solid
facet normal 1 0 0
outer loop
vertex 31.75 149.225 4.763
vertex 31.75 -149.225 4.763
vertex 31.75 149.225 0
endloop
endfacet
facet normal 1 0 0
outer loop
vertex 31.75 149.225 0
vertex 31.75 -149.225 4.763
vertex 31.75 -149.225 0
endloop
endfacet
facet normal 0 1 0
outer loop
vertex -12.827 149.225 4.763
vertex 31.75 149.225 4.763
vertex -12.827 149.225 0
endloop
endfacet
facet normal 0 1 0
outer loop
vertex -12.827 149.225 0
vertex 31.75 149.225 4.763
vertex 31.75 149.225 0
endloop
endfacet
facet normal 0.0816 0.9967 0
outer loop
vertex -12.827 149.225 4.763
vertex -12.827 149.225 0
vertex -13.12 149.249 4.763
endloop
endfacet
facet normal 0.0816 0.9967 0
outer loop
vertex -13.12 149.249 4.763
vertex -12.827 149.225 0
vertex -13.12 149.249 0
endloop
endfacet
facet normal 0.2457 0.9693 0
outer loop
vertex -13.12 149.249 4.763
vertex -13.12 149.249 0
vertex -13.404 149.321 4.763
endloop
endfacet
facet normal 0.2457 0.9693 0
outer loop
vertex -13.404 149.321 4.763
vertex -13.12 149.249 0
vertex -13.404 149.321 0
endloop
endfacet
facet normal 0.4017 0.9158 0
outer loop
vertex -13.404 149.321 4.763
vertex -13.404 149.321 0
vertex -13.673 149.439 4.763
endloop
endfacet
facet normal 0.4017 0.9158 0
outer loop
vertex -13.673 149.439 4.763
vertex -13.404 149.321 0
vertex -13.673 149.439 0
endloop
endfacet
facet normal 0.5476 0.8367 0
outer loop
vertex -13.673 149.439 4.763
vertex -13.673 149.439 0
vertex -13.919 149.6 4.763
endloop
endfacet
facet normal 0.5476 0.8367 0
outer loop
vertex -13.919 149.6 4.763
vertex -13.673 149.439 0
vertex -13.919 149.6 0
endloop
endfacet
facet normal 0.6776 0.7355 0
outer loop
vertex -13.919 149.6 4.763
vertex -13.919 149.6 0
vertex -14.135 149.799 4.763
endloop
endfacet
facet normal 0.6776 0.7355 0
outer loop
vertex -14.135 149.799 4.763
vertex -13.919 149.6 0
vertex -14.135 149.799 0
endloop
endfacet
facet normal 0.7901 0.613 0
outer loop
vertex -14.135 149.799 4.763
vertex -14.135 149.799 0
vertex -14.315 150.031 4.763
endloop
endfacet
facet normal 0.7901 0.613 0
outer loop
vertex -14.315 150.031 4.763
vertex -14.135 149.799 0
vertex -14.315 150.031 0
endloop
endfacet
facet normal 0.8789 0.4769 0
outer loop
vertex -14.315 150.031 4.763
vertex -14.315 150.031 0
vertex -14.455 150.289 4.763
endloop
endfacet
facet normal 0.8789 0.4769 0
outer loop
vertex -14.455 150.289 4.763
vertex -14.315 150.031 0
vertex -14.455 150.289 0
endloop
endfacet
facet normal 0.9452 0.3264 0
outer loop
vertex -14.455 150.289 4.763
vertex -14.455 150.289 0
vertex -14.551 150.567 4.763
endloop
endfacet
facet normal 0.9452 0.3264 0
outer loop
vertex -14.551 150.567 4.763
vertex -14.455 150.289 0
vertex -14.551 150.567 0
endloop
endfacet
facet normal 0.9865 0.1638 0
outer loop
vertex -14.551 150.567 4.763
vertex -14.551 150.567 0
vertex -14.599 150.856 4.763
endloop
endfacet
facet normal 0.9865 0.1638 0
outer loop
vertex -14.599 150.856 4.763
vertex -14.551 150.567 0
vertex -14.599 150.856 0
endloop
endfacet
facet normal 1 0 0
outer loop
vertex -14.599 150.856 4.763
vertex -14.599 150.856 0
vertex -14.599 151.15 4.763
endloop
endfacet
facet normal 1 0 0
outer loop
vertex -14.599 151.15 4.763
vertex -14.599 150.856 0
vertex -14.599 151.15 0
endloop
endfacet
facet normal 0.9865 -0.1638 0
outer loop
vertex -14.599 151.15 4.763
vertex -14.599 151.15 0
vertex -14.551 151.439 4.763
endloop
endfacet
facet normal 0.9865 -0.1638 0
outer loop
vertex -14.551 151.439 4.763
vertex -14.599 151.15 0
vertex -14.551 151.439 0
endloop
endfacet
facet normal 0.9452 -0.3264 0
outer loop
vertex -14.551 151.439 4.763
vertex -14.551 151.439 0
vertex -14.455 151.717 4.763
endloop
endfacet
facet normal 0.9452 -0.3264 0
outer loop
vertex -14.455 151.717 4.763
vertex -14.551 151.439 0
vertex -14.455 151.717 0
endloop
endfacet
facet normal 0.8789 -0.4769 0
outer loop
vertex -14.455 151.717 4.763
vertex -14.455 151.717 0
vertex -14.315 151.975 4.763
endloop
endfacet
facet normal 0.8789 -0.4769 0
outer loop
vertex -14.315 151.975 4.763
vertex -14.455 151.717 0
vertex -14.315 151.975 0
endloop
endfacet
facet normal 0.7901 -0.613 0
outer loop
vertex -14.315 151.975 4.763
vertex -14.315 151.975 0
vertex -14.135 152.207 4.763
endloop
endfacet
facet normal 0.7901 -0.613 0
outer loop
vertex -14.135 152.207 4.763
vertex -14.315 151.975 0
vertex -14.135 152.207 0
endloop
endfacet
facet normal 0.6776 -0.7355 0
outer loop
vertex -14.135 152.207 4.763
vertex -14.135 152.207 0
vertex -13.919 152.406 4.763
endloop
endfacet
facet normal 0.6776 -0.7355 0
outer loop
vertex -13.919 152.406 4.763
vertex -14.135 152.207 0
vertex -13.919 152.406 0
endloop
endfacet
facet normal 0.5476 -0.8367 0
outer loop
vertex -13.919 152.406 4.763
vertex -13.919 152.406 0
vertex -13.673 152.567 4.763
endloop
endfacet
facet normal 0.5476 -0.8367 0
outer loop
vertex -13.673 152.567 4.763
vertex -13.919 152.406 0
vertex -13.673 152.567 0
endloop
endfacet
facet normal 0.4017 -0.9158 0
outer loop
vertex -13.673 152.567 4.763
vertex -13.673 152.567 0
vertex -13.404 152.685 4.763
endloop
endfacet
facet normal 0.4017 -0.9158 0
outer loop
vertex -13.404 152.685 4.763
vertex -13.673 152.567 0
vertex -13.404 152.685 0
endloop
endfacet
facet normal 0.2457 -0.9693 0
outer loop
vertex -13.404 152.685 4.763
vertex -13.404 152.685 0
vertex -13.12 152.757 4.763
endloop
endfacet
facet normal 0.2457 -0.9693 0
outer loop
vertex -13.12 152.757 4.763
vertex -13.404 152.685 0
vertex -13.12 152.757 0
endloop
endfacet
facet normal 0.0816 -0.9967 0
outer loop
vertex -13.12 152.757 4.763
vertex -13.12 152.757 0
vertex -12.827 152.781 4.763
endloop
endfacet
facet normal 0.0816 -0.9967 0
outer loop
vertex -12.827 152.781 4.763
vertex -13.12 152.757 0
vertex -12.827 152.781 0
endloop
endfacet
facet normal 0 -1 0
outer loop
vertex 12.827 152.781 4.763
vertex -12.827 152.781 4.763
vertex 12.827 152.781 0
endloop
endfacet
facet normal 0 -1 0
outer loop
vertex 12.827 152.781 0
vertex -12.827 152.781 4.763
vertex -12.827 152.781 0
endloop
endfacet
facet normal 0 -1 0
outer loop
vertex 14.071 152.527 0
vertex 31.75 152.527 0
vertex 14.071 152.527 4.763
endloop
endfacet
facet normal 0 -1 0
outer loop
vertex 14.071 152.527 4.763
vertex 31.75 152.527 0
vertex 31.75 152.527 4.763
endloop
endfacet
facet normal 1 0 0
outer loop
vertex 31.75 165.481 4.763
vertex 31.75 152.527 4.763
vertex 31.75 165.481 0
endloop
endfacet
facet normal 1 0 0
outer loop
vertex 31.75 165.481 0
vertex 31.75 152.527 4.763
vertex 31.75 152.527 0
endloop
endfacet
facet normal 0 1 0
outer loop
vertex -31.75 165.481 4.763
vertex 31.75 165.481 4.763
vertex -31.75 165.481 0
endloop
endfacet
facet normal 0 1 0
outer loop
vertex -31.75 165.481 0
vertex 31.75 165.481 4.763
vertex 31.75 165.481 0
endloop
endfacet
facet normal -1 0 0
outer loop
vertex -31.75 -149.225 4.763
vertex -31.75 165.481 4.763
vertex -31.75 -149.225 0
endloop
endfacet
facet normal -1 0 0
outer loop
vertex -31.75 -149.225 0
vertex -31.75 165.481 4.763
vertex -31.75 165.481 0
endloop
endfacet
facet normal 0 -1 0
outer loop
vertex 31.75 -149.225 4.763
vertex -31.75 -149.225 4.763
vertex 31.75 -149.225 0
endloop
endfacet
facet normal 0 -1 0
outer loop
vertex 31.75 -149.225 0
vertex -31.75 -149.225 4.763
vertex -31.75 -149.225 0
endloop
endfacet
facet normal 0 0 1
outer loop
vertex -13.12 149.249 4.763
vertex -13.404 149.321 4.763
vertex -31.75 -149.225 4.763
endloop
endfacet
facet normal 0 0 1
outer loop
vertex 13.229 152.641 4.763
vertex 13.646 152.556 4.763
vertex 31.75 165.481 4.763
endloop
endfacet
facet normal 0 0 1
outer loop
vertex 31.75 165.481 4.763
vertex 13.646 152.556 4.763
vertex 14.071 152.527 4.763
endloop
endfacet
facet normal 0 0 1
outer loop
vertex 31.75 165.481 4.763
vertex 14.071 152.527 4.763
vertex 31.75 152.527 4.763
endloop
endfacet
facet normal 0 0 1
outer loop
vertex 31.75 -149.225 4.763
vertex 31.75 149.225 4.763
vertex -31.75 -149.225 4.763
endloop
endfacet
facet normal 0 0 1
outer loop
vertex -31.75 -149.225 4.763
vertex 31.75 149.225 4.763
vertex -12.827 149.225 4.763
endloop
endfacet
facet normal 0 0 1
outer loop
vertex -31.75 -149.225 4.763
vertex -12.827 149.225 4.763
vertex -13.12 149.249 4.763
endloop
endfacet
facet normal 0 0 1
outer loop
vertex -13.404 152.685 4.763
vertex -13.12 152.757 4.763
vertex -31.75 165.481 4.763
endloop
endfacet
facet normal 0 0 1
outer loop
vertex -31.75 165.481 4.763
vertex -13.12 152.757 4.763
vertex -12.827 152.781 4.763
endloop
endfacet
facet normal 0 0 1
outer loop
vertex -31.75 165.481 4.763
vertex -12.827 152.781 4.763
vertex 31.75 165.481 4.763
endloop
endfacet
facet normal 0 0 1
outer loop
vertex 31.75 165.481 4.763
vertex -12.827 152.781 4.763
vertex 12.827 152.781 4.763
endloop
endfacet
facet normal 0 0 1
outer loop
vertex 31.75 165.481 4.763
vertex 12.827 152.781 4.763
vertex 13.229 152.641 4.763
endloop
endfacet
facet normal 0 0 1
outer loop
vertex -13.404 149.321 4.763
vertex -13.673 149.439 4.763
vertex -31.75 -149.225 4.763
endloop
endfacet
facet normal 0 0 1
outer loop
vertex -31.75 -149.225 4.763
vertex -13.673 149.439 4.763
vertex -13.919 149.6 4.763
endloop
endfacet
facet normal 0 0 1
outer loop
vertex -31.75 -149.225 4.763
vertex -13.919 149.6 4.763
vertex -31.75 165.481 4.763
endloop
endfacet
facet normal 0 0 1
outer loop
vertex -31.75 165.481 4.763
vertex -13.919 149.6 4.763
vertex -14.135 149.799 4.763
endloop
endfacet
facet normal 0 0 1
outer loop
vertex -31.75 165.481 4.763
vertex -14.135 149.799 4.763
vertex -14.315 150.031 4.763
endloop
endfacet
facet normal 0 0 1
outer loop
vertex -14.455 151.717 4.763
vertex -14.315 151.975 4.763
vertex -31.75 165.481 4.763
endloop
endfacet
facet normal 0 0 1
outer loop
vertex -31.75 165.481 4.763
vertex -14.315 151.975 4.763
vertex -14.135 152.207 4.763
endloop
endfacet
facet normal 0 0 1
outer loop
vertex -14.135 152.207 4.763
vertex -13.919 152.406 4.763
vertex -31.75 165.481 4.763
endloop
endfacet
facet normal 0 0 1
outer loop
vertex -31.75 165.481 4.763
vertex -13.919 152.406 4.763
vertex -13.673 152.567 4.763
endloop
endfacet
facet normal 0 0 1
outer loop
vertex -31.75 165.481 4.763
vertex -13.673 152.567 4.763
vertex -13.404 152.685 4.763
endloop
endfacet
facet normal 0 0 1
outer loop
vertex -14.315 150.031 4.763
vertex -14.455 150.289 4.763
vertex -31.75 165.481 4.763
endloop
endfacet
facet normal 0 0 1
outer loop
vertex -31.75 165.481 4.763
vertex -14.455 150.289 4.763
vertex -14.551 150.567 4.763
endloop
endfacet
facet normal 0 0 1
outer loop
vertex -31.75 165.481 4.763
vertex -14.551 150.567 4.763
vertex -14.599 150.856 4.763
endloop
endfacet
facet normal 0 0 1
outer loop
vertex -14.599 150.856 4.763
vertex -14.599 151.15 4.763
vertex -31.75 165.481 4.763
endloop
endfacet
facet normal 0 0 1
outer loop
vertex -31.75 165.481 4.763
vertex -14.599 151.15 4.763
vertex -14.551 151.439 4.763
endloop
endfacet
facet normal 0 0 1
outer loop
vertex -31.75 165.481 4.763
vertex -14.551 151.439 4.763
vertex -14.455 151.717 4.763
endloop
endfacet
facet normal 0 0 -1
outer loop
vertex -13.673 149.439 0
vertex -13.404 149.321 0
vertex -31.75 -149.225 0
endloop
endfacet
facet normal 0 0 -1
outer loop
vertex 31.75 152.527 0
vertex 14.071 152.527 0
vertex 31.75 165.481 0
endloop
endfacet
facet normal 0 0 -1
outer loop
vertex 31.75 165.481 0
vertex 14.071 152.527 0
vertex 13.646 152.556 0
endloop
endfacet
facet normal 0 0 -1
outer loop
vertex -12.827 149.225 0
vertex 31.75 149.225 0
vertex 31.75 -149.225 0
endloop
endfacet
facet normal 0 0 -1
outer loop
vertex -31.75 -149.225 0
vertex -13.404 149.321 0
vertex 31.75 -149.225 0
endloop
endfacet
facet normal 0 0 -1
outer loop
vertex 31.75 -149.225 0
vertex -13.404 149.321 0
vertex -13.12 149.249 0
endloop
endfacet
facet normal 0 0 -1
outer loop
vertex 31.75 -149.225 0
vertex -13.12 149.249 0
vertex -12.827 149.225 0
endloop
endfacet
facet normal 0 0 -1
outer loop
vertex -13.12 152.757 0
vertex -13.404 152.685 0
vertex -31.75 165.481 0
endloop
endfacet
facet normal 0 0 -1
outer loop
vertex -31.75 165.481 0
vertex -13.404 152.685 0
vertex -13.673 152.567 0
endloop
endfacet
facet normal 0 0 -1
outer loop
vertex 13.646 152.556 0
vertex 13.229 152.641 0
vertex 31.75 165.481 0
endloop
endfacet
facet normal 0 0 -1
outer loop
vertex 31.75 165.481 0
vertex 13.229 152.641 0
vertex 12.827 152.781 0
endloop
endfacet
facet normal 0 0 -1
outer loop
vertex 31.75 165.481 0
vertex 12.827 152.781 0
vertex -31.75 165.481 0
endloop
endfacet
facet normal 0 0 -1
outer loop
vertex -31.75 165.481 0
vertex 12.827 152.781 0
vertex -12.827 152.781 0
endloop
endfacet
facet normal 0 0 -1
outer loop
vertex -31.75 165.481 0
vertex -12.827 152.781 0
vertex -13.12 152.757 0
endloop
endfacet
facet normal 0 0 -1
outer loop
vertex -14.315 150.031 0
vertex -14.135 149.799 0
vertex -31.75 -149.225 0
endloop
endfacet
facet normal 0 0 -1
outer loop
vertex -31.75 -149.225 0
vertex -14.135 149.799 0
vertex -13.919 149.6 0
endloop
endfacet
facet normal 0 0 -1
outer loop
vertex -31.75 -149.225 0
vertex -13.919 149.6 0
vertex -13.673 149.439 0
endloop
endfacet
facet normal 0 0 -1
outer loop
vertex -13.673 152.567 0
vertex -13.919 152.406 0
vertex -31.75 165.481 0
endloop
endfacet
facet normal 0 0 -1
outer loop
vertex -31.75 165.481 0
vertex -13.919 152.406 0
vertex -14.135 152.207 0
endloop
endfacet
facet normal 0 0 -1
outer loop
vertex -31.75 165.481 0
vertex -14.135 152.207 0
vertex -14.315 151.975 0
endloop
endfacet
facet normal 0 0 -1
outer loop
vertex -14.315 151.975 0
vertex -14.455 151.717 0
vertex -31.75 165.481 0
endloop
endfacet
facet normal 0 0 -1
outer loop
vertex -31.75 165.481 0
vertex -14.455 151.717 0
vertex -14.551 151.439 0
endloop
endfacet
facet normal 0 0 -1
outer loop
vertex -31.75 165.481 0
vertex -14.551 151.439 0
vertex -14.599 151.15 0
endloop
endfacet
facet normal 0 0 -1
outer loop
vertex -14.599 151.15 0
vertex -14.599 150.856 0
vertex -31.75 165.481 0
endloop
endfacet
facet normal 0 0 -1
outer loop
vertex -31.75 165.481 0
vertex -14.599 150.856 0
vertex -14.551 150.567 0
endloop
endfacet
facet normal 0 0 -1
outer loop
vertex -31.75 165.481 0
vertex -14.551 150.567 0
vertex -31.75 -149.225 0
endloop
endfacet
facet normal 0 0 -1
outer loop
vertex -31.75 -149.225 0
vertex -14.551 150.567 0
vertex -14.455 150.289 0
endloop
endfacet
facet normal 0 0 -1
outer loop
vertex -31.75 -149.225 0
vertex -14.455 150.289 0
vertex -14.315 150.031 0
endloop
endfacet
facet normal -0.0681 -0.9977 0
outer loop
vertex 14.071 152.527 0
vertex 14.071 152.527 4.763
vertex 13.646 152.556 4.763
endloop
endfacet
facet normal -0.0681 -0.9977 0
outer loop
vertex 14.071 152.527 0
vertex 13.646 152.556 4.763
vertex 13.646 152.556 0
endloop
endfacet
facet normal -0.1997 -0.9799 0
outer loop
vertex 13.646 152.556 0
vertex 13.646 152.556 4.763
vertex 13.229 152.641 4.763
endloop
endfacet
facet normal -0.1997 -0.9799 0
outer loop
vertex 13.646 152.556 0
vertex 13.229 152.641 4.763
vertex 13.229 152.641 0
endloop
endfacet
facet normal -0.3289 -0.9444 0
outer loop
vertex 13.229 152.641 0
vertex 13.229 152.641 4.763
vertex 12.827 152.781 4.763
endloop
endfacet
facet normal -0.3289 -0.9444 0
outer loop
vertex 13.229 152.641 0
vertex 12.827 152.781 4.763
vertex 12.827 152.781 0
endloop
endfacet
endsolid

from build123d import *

# Parameters (mm, degrees)
BOSS_EXTRUDE1_DEPTH = 4.7625
FILLET1_R           = 3.175


with BuildPart() as part:
    # Sketch1 → Boss-Extrude1 (new body)
    with BuildSketch(Plane.XY):
        with BuildLine():
            Line((-31.75, 165.481), (-31.75, 149.225))
            Line((-31.75, 149.225), (-12.827, 149.225))
            ThreePointArc((-12.827, 149.225), (-14.605, 151.003), (-12.827, 152.781))
            Line((-12.827, 152.781), (12.827, 152.781))
            Line((12.827, 152.781), (12.827, 152.527))
            Line((12.827, 152.527), (31.75, 152.527))
            Line((31.75, 152.527), (31.75, 165.481))
            Line((31.75, 165.481), (-31.75, 165.481))
        make_face()
        Polygon((-12.827, 149.225), (-31.75, 149.225), (-31.75, -149.225), (31.75, -149.225), (31.75, 149.225), align=None)
    extrude(amount=BOSS_EXTRUDE1_DEPTH)

    # Fillet1
    # the kernel refuses this fillet: 3.175 mm, written as the material it takes off along each edge
    with BuildSketch(Plane(origin=(12.827, 152.527, -3.110851973), x_dir=(0, 1, 0), z_dir=(0, 0, 1))) as fillet1_piece_1:
        with BuildLine():
            CenterArc((3.175, -1.244340789), FILLET1_R, 156.926081934, 23.073918066)
            Line((0, -1.244340789), (-0.0635, -1.244340789))
            Line((-0.0635, -1.244340789), (-0.0635, 0))
            Line((-0.0635, 0), (0, 0.0635))
            ThreePointArc((0, 0.0635), (0.127, 0.0635), (0.19558, 0.024886816))
            Line((0.19558, 0.024886816), (0.254, 0))
        make_face()
    extrude(amount=10.984203947, mode=Mode.SUBTRACT)


solid = part.part
